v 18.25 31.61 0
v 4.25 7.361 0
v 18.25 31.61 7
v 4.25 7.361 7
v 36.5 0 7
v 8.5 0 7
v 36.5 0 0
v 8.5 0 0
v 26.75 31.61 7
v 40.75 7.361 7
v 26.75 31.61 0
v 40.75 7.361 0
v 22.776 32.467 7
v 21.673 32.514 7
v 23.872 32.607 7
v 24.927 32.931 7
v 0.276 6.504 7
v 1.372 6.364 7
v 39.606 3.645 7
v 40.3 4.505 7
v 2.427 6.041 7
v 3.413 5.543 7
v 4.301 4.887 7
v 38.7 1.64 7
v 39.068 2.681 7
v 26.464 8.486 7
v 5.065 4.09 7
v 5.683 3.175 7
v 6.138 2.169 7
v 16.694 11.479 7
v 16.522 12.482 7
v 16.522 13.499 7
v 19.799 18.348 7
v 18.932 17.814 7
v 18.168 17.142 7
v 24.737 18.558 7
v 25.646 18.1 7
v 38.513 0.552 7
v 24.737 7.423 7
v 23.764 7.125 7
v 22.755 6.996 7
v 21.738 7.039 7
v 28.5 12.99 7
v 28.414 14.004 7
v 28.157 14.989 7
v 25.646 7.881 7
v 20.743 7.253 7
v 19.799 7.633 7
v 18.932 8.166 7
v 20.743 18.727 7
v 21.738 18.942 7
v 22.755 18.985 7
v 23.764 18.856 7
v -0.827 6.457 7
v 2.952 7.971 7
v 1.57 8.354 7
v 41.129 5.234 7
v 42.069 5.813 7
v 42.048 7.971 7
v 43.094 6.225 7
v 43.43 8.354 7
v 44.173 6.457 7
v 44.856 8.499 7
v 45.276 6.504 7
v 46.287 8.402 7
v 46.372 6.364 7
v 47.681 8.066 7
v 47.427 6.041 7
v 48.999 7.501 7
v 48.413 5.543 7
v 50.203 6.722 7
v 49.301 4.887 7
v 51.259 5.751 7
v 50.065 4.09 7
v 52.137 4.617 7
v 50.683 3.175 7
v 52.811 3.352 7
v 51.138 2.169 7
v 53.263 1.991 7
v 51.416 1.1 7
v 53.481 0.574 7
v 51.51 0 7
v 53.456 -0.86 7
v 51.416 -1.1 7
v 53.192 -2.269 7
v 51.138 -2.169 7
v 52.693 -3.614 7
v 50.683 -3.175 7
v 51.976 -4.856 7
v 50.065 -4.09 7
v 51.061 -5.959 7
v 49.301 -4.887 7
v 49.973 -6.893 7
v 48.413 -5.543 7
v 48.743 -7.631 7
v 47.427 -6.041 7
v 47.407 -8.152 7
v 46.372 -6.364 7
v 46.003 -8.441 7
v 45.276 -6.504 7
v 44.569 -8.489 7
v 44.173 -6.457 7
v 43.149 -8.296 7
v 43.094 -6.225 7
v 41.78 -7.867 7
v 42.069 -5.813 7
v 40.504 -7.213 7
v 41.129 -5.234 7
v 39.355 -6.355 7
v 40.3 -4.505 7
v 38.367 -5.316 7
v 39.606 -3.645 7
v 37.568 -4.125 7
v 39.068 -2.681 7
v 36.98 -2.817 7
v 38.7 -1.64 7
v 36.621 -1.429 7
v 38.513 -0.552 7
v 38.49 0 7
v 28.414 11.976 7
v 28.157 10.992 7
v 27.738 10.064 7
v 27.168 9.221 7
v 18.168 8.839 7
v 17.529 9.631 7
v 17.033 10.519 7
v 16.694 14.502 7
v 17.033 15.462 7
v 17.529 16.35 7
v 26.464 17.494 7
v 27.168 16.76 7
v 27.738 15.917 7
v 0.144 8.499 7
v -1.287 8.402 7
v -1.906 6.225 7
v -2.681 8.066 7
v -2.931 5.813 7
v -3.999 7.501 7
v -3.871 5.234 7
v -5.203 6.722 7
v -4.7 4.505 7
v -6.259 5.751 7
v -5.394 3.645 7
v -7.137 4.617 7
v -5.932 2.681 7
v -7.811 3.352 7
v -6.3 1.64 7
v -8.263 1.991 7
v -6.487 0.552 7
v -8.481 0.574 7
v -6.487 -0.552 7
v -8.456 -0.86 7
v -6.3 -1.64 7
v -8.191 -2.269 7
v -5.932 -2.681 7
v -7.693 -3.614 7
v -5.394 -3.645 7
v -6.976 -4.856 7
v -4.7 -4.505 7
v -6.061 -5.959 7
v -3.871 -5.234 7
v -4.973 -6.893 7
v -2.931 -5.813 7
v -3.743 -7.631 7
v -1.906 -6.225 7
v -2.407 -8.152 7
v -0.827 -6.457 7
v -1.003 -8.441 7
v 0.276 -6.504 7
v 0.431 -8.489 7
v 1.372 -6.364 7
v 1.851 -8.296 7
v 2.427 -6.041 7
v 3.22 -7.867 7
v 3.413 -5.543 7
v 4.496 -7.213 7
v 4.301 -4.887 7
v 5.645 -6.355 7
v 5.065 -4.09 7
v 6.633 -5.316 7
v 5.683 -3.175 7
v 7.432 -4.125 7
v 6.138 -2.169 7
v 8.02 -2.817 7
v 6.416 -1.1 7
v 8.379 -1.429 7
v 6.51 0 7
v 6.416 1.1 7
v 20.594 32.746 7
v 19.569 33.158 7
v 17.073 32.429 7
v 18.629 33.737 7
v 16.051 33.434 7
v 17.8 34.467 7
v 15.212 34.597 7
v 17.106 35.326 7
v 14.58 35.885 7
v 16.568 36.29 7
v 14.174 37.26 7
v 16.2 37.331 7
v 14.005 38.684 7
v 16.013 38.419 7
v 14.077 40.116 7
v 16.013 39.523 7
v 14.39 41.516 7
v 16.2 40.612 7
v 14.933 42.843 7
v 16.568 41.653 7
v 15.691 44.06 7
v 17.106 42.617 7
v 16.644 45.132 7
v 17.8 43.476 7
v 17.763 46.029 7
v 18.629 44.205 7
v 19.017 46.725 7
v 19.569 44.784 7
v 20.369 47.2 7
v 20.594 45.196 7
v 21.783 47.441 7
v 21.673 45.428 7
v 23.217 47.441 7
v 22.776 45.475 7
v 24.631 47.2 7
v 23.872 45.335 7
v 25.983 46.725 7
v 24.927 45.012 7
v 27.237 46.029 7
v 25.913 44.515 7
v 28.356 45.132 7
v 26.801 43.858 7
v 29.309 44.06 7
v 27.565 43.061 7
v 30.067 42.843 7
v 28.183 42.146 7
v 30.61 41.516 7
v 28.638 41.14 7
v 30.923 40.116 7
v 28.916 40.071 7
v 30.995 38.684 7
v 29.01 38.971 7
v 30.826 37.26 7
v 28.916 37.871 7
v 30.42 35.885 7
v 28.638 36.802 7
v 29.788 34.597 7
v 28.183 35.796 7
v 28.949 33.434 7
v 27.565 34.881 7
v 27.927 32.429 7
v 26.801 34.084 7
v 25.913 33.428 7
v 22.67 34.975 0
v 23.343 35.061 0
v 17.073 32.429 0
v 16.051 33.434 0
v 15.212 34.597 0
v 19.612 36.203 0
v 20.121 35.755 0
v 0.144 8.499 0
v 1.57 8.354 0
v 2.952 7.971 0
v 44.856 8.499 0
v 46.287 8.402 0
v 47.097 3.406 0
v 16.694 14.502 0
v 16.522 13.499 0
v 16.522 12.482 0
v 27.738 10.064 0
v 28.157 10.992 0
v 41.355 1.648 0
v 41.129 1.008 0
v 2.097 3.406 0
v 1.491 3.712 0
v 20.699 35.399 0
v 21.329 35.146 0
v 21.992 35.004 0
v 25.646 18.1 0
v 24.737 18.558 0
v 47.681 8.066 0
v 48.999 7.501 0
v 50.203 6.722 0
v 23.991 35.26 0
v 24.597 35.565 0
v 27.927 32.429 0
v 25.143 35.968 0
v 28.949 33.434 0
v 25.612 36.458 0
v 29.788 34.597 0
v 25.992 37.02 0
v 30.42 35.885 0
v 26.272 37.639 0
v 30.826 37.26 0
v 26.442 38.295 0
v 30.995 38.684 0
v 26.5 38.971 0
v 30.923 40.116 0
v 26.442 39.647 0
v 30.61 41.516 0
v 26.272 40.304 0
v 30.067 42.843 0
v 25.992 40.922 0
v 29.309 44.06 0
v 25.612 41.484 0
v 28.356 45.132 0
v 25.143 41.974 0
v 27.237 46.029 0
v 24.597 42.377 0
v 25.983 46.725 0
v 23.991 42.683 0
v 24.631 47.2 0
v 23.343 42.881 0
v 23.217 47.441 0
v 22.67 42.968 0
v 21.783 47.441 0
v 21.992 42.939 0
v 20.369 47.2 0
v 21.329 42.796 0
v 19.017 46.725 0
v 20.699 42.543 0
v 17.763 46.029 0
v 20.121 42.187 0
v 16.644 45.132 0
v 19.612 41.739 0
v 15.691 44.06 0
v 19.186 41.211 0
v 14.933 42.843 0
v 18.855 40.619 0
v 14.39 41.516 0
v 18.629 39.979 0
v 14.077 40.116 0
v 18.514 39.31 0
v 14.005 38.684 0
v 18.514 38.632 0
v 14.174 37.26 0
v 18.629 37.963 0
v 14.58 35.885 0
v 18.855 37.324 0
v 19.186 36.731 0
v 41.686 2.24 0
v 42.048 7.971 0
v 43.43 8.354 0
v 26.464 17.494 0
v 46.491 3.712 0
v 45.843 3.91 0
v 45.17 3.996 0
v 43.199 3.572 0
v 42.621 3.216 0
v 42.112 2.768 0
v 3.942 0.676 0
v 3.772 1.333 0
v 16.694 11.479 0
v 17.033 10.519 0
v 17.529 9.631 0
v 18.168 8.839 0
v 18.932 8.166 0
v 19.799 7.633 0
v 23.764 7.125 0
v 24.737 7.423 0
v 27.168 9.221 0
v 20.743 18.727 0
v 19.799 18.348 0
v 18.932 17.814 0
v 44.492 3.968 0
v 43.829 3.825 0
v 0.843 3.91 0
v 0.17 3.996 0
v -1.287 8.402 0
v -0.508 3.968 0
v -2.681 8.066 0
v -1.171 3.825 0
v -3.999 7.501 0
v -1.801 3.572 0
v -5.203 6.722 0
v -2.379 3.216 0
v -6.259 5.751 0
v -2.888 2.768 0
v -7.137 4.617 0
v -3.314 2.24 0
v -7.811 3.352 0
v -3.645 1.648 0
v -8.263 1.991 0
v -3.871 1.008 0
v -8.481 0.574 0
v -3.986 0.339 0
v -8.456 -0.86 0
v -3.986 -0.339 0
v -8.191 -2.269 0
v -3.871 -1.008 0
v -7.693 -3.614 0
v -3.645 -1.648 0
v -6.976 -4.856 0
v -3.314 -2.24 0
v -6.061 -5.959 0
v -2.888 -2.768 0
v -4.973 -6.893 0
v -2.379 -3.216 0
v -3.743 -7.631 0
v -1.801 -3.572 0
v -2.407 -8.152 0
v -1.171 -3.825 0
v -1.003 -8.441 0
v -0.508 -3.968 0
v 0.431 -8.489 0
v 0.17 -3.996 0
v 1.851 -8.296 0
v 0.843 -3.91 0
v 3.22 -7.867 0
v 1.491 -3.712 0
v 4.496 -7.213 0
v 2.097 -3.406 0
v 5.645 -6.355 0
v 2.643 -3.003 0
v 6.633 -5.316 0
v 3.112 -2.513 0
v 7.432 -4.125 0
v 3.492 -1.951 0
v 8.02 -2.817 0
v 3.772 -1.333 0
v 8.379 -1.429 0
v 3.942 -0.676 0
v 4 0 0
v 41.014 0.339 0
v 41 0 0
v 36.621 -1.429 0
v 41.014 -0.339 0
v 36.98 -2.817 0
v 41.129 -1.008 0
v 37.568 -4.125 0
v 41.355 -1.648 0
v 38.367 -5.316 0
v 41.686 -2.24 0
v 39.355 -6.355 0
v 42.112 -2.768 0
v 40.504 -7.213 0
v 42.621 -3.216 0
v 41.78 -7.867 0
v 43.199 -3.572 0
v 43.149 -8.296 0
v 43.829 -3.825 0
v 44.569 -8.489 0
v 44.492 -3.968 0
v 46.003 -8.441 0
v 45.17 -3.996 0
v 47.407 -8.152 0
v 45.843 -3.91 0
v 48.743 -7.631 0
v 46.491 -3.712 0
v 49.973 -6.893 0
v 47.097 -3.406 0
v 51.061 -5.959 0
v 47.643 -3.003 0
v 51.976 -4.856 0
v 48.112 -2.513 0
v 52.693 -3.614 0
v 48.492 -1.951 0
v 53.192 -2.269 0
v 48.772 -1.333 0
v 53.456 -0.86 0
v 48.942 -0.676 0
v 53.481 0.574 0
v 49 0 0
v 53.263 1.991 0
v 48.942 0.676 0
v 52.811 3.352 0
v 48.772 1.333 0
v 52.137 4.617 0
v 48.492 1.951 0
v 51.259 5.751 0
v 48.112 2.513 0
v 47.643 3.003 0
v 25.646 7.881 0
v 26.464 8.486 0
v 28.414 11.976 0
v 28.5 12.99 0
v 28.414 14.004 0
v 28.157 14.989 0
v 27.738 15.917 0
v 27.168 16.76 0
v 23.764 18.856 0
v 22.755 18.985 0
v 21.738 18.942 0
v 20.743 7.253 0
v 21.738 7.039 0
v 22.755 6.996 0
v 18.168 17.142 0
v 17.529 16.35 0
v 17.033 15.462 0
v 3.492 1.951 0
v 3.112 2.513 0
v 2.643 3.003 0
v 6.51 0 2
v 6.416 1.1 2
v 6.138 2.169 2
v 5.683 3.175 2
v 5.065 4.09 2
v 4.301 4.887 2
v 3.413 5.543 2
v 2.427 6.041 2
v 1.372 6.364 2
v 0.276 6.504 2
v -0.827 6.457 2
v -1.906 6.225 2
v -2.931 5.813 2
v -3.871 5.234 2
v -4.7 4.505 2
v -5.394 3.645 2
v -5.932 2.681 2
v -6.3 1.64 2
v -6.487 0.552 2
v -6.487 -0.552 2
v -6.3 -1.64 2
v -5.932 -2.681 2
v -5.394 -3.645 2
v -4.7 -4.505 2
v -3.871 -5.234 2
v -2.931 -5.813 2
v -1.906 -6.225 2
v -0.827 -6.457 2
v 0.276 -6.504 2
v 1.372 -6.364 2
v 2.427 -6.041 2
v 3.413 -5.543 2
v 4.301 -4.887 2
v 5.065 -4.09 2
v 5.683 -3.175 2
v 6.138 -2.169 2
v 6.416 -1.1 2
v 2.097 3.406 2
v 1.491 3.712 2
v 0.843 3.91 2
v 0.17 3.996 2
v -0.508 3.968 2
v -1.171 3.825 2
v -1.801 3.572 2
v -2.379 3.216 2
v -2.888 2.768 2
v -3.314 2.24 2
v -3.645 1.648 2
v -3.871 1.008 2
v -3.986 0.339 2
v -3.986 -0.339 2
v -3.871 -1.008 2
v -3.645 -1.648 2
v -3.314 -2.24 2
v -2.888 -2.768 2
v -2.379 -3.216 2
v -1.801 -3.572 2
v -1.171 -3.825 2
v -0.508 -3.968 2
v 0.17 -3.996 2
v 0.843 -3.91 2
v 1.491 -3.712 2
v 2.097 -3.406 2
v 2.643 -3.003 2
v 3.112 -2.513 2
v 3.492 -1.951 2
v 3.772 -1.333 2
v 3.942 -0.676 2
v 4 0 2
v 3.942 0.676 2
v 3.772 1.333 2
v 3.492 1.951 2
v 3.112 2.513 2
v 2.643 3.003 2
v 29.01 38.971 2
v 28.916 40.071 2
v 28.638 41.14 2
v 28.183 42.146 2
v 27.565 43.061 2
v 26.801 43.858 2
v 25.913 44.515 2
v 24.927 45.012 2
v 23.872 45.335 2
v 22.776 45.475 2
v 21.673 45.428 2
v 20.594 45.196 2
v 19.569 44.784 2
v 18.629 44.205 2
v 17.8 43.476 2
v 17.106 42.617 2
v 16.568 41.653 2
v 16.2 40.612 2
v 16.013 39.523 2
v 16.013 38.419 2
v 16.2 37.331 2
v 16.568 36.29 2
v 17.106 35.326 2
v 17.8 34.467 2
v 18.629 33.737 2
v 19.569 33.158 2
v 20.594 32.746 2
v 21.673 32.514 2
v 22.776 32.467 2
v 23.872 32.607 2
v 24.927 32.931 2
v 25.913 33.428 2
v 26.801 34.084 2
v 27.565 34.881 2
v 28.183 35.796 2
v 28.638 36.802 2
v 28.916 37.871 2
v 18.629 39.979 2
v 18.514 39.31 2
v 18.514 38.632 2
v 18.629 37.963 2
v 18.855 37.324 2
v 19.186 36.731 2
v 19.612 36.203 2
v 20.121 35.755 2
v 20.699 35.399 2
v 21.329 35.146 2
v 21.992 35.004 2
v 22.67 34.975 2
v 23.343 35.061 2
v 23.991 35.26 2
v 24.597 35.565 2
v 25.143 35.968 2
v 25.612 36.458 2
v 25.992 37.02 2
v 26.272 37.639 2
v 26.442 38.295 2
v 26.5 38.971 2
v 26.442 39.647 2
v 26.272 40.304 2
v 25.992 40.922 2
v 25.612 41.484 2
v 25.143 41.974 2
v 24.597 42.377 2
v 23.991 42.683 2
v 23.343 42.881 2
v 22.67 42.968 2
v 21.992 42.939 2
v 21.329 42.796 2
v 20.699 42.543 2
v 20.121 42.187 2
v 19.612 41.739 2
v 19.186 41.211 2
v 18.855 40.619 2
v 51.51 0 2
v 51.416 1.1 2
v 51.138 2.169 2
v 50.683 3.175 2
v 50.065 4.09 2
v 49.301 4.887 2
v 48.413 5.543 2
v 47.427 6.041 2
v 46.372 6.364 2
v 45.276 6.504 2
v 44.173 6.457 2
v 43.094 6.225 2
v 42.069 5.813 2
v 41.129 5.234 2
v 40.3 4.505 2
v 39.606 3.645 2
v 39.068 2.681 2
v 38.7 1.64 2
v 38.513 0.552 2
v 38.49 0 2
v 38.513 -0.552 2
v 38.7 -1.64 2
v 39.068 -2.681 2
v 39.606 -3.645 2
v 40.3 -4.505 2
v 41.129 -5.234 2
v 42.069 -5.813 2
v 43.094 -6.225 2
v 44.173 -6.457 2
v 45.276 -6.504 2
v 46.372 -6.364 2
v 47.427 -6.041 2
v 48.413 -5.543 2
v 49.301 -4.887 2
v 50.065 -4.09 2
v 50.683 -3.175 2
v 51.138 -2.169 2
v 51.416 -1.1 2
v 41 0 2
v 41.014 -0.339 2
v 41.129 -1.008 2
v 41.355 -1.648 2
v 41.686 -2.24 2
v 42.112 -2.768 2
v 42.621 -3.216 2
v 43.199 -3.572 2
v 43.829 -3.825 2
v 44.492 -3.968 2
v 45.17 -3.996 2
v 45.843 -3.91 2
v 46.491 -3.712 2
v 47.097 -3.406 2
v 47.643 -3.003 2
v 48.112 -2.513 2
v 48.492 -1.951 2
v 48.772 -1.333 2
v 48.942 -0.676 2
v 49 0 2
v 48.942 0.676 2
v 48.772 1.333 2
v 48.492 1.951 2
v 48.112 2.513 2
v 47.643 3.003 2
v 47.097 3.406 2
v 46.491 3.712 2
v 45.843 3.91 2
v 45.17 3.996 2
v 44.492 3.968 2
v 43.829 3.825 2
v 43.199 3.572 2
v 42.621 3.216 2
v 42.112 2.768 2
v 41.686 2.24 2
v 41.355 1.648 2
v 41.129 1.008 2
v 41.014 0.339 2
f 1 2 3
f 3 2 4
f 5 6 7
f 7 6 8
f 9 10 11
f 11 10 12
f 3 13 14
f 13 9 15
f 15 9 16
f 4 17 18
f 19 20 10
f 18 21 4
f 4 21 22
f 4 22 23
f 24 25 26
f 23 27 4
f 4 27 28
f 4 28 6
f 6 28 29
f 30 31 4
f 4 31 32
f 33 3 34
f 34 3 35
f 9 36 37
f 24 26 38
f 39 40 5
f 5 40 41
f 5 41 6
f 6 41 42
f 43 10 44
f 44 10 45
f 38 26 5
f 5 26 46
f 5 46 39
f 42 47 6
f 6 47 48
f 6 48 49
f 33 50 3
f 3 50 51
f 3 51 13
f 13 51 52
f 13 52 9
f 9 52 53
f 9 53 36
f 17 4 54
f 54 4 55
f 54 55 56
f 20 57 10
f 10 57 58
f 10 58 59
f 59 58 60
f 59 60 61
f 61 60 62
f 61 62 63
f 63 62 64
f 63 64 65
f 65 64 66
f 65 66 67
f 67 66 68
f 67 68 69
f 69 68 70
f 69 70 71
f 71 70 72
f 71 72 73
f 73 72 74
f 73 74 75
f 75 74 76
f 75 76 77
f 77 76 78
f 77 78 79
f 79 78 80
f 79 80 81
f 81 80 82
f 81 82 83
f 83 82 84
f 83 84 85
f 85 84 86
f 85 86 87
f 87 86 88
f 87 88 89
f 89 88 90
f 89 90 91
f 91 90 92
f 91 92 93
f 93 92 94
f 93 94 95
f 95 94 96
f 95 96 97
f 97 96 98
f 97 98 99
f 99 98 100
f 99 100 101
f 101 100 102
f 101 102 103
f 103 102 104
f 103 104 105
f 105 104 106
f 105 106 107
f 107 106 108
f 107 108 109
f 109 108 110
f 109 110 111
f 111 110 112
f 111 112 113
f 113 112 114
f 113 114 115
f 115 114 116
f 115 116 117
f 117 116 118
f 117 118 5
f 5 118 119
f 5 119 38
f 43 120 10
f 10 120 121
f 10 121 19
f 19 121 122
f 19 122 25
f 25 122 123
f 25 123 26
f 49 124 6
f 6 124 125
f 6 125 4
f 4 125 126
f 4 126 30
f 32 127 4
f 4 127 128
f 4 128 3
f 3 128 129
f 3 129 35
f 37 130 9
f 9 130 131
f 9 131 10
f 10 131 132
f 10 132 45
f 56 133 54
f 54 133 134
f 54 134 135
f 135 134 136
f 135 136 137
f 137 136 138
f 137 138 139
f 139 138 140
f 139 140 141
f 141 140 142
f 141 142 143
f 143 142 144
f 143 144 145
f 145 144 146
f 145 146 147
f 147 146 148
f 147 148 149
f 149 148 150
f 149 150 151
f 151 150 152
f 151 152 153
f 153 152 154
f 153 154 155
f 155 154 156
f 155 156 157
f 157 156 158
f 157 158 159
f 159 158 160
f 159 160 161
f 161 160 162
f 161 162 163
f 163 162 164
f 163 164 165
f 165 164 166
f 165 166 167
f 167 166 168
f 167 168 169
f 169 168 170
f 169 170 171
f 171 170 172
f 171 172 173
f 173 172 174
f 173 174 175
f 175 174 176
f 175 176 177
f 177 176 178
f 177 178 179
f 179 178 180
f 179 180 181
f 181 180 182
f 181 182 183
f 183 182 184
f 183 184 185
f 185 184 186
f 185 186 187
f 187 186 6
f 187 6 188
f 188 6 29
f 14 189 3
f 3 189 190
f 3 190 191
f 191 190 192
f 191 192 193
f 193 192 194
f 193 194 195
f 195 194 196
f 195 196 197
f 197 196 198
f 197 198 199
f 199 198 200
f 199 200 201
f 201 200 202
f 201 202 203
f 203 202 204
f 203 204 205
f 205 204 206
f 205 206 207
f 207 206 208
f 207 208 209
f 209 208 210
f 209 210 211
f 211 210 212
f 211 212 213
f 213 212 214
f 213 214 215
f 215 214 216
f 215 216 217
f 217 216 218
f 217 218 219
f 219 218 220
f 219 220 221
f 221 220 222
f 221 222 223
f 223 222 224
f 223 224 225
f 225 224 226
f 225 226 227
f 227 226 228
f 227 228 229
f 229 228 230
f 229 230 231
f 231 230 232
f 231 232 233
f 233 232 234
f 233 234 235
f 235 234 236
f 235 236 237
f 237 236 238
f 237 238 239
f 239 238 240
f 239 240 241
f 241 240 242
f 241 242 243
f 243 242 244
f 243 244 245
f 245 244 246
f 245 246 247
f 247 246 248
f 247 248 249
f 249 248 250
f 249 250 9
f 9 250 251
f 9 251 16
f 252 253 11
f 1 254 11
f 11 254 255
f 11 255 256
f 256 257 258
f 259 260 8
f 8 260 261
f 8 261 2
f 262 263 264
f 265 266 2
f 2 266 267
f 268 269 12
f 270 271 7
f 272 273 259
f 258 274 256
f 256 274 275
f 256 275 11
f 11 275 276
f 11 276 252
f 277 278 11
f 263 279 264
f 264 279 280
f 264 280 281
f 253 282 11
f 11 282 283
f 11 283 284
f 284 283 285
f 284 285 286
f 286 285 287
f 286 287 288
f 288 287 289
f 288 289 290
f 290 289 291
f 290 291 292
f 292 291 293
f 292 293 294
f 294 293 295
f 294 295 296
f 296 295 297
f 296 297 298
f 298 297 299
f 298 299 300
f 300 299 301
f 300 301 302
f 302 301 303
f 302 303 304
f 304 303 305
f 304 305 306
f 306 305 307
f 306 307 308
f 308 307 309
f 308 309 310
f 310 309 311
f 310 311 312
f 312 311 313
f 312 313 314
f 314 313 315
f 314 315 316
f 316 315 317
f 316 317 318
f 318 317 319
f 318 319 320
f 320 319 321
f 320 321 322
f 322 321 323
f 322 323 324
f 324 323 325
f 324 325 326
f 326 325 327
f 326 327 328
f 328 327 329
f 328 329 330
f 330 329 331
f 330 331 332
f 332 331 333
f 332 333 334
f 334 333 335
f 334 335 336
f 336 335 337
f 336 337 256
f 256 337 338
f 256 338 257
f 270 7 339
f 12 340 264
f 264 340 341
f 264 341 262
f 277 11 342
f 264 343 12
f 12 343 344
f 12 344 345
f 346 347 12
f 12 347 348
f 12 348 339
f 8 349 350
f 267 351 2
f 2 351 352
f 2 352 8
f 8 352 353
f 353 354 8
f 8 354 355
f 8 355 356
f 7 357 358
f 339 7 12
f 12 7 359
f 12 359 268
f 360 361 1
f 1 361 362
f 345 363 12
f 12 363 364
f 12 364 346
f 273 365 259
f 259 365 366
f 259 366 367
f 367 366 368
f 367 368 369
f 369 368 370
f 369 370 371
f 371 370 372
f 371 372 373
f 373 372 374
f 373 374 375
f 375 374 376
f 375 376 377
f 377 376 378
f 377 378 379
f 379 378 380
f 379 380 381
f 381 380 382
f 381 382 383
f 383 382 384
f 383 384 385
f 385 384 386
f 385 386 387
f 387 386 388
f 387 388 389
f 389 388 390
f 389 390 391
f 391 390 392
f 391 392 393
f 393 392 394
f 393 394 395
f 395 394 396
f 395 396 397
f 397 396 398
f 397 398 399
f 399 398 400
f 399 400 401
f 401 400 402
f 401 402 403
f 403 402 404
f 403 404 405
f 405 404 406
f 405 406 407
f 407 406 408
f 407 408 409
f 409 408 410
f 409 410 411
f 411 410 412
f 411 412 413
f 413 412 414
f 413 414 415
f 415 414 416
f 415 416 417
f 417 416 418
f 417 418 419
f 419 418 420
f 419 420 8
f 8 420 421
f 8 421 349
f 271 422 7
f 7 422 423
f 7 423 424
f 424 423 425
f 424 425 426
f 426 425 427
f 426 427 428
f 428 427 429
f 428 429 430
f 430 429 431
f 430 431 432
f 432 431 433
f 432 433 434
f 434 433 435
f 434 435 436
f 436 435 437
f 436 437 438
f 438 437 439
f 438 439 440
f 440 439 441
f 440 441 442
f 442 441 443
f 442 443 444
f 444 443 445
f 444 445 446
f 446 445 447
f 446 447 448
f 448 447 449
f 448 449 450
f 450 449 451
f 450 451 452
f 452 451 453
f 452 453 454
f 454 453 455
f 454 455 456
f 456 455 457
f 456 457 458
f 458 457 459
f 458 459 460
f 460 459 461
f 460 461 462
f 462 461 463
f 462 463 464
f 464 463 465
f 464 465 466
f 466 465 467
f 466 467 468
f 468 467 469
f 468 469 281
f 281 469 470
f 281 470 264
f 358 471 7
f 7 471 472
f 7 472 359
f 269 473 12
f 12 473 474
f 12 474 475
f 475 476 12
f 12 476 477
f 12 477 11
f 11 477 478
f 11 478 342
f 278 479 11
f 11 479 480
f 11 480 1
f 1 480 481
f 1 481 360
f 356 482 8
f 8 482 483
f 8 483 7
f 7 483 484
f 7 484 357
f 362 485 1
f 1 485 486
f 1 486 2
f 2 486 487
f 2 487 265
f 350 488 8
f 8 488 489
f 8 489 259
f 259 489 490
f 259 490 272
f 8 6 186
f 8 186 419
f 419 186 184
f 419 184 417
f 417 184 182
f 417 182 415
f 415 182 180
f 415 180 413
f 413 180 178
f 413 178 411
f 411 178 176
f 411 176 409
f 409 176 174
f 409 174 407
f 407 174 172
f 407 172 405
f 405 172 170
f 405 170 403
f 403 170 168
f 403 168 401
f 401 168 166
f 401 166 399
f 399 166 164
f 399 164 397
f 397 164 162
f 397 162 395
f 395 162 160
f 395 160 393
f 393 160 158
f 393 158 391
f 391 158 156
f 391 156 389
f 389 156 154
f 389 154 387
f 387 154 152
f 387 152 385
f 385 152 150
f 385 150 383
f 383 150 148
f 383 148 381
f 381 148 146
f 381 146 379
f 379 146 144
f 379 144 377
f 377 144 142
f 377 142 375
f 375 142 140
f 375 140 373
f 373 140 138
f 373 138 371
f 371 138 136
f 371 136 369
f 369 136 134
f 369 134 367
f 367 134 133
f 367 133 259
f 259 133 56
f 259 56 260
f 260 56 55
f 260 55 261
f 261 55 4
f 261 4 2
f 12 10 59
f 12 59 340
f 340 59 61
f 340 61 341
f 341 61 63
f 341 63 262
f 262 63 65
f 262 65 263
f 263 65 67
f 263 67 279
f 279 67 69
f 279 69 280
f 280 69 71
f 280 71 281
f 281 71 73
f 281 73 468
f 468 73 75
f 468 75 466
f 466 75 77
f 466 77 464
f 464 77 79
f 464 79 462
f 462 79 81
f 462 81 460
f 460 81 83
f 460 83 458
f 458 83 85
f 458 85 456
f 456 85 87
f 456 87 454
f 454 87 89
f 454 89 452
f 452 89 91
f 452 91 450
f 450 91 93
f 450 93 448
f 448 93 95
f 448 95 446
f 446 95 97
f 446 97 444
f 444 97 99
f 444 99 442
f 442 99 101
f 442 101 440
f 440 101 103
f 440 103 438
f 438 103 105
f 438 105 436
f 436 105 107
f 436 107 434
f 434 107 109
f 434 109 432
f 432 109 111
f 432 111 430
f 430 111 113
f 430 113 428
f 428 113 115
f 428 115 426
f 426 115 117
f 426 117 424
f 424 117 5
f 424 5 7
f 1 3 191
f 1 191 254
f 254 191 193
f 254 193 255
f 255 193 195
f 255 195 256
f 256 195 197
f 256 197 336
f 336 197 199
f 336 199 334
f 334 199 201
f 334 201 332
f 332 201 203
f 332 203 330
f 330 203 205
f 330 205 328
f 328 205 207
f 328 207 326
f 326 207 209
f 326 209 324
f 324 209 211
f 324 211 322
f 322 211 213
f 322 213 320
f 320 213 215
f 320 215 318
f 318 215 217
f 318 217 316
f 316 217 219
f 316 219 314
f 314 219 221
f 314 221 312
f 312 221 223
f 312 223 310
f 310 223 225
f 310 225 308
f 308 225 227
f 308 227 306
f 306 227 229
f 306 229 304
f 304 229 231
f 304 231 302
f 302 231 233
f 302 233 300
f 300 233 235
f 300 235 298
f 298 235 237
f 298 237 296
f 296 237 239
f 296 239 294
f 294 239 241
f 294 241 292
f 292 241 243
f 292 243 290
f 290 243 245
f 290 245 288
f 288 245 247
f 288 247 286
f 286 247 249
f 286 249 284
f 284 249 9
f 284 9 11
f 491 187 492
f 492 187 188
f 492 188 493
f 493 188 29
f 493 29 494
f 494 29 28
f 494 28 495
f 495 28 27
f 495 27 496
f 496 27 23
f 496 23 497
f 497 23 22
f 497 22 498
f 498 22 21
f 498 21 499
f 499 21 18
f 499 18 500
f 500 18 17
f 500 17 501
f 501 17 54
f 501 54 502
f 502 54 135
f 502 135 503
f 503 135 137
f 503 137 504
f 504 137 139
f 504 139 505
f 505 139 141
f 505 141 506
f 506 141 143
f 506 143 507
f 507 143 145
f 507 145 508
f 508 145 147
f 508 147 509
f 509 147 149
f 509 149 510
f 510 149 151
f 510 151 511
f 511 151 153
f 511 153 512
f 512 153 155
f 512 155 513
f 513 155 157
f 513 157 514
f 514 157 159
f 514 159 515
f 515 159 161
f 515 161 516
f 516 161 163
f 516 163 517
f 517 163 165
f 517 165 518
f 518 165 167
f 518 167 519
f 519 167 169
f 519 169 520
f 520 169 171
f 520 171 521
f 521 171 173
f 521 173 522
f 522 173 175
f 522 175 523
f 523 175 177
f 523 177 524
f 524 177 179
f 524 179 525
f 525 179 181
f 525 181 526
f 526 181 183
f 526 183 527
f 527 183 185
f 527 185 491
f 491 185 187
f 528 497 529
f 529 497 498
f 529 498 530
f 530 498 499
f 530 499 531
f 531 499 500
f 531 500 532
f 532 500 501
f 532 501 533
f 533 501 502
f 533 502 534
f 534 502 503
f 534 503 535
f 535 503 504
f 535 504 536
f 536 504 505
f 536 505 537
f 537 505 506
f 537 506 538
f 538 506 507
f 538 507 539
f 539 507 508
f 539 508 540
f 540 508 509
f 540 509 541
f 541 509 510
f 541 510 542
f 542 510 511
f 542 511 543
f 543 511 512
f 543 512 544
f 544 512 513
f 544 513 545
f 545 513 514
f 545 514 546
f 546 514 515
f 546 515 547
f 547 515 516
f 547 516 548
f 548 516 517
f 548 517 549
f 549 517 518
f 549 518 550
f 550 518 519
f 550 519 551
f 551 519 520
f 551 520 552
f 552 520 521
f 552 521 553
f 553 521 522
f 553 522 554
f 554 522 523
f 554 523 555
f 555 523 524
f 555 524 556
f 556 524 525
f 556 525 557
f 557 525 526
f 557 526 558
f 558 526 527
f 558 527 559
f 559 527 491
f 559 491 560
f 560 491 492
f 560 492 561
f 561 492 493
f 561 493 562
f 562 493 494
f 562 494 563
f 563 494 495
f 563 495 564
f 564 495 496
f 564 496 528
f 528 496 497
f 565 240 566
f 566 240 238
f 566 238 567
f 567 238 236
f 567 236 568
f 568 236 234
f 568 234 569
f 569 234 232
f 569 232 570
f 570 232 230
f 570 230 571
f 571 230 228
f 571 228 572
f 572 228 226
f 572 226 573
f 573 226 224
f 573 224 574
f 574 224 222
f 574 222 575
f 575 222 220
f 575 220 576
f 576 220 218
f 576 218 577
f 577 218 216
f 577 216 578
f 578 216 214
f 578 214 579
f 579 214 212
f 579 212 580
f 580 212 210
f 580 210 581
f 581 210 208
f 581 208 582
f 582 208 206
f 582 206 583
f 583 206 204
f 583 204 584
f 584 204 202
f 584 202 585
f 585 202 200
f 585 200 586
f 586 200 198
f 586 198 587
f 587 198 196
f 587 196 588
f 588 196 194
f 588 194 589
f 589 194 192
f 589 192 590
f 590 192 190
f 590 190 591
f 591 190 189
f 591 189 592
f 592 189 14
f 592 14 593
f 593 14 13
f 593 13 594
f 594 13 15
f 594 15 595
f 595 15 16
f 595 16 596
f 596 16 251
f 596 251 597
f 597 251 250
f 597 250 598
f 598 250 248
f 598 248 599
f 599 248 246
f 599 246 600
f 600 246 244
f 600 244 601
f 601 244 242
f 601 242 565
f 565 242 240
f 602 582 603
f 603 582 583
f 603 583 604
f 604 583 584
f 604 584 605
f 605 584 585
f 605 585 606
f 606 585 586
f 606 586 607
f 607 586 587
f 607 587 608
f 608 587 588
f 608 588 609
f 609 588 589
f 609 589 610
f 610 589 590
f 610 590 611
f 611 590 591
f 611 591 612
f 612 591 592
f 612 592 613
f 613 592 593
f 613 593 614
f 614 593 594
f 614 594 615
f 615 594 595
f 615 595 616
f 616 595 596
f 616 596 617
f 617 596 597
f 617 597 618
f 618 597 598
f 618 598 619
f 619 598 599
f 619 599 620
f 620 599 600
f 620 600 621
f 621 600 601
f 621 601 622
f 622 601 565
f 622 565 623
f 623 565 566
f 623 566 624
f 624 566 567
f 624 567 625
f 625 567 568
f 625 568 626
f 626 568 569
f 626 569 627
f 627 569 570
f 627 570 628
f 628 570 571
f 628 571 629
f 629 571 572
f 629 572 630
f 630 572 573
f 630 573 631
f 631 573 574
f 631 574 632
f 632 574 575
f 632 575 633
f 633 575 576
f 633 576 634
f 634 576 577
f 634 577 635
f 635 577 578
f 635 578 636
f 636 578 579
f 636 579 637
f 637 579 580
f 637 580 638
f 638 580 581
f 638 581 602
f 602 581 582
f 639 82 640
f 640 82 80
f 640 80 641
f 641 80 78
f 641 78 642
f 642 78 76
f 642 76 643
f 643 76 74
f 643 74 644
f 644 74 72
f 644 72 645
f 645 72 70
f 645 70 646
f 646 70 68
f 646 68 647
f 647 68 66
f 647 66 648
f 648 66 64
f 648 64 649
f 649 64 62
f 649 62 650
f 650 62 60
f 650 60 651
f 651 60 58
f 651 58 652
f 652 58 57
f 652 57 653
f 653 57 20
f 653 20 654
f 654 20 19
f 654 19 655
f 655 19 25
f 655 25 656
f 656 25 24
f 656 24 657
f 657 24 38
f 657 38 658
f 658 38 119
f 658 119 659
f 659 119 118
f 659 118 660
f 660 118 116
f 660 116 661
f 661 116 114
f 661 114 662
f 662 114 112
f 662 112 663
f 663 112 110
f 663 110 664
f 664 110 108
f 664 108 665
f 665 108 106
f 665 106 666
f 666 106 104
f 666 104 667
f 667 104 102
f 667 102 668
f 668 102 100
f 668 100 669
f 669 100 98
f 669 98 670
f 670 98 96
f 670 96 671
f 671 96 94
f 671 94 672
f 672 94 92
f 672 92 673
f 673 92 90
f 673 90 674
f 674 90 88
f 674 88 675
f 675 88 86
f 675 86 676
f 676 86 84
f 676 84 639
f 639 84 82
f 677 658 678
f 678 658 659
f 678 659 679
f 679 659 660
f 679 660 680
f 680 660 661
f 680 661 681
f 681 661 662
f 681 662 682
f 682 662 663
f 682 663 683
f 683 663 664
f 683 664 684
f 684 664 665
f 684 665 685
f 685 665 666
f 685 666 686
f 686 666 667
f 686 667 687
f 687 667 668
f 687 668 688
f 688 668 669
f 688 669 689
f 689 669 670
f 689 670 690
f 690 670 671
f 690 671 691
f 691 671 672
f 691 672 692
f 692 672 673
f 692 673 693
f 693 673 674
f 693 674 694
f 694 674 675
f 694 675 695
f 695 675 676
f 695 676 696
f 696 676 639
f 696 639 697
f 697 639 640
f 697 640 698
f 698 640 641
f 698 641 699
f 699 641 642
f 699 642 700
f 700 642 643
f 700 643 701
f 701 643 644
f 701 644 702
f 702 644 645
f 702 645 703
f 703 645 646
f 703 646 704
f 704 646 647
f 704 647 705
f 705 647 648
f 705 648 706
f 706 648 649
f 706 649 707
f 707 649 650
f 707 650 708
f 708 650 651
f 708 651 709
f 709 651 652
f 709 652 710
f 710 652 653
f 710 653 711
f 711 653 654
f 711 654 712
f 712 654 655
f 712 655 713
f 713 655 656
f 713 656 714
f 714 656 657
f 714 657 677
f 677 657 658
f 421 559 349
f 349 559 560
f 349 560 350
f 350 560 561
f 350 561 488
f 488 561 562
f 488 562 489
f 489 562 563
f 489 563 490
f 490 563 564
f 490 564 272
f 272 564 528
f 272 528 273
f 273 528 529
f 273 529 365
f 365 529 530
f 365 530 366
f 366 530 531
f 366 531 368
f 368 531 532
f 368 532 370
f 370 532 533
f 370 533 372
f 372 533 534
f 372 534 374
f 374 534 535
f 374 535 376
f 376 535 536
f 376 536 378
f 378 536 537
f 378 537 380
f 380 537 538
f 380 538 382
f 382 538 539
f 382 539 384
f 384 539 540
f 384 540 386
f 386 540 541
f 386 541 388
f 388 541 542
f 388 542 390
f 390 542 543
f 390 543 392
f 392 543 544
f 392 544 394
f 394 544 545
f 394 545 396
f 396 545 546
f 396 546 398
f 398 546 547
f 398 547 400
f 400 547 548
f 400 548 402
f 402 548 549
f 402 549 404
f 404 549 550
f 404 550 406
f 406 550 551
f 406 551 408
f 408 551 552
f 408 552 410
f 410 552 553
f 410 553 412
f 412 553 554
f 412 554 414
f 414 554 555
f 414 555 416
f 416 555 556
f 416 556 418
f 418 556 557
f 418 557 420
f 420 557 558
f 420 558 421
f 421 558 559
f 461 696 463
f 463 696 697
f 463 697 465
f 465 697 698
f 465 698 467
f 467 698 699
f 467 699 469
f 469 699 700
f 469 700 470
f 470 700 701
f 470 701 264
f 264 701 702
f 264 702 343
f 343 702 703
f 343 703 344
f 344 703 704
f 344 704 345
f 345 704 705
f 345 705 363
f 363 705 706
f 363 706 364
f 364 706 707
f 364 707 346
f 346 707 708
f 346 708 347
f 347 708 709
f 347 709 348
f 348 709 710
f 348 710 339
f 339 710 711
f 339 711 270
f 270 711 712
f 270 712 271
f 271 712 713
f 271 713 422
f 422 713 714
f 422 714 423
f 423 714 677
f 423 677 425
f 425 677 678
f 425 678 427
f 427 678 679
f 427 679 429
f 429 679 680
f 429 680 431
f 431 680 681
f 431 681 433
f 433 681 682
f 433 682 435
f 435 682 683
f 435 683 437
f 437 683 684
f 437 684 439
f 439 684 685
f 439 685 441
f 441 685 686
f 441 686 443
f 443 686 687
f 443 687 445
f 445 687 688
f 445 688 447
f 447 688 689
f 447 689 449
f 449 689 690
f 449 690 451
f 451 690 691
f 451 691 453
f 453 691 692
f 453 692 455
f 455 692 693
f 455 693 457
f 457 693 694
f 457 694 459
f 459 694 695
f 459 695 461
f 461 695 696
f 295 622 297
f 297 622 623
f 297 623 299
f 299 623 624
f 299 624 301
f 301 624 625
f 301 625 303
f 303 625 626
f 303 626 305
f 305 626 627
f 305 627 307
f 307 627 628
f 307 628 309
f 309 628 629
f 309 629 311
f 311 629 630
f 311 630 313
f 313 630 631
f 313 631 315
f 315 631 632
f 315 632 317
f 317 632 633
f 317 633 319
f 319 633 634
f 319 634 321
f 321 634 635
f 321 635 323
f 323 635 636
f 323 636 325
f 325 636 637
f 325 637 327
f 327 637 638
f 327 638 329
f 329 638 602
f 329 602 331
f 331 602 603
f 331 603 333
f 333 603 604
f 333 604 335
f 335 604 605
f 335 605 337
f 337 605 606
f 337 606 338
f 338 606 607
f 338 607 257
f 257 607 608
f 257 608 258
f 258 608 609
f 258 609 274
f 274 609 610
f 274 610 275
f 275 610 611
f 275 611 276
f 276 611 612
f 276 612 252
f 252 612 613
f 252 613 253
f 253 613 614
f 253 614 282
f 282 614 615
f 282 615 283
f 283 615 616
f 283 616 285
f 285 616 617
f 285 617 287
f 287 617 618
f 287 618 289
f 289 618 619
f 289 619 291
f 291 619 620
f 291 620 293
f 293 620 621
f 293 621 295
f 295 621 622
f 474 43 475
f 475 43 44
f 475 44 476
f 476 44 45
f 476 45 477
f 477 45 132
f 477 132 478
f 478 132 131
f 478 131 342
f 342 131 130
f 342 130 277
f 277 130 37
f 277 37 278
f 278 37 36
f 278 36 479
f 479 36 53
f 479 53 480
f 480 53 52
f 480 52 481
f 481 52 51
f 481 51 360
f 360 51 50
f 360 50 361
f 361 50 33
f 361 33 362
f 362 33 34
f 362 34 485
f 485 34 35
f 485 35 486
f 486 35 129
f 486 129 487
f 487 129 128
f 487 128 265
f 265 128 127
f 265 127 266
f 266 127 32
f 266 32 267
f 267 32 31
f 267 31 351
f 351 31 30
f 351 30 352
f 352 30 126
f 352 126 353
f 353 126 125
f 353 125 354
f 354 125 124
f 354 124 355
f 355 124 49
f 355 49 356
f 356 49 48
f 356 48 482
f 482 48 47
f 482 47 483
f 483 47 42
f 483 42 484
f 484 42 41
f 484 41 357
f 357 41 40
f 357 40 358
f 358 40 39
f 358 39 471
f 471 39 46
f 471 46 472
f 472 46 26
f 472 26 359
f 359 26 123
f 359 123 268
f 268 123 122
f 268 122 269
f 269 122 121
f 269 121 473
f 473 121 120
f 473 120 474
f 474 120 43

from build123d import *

# Parameters (mm, degrees)
BOSS_EXTRUDE1_DEPTH = 7
SKETCH2_R           = 8.5
BOSS_EXTRUDE2_DEPTH = 7
SKETCH3_R           = 6.51
CUT_EXTRUDE1_DEPTH  = 5
SKETCH4_R           = 4
CUT_EXTRUDE2_DEPTH  = 72.699089491
SKETCH5_R           = 6
CUT_EXTRUDE3_DEPTH  = 72.866260748


with BuildPart() as part:
    # Sketch1 → Boss-Extrude1 (new body)
    with BuildSketch(Plane.XY):
        Polygon((0, 0), (45, 0), (22.5, 38.97114317), align=None)
    extrude(amount=BOSS_EXTRUDE1_DEPTH)

    # Sketch2 → Boss-Extrude2 (add)
    with BuildSketch(Plane.XY.offset(7)):
        Circle(SKETCH2_R)
        with Locations((45, 0)):
            Circle(SKETCH2_R)
        with Locations((22.5, 38.97114317)):
            Circle(SKETCH2_R)
    extrude(amount=-BOSS_EXTRUDE2_DEPTH)

    # Sketch3 → Cut-Extrude1 (cut)
    with BuildSketch(Plane.XY.offset(7)):
        Circle(SKETCH3_R)
        with Locations(Location((45, 0, 0), (0, 0, 180))):
            Circle(SKETCH3_R)
        with Locations((22.5, 38.97114317)):
            Circle(SKETCH3_R)
    extrude(amount=-CUT_EXTRUDE1_DEPTH, mode=Mode.SUBTRACT)

    # Sketch4 → Cut-Extrude2 (cut, through all)
    with BuildSketch(Plane.XY.offset(2)):
        Circle(SKETCH4_R)
        with Locations(Location((45, 0, 0), (0, 0, 180))):
            Circle(SKETCH4_R)
        with Locations((22.5, 38.97114317)):
            Circle(SKETCH4_R)
    extrude(amount=-CUT_EXTRUDE2_DEPTH, mode=Mode.SUBTRACT)

    # Sketch5 → Cut-Extrude3 (cut, through all)
    with BuildSketch(Plane.XY.offset(7)):
        with Locations((22.5, 12.990381057)):
            Circle(SKETCH5_R)
    extrude(amount=-CUT_EXTRUDE3_DEPTH, mode=Mode.SUBTRACT)


solid = part.part
